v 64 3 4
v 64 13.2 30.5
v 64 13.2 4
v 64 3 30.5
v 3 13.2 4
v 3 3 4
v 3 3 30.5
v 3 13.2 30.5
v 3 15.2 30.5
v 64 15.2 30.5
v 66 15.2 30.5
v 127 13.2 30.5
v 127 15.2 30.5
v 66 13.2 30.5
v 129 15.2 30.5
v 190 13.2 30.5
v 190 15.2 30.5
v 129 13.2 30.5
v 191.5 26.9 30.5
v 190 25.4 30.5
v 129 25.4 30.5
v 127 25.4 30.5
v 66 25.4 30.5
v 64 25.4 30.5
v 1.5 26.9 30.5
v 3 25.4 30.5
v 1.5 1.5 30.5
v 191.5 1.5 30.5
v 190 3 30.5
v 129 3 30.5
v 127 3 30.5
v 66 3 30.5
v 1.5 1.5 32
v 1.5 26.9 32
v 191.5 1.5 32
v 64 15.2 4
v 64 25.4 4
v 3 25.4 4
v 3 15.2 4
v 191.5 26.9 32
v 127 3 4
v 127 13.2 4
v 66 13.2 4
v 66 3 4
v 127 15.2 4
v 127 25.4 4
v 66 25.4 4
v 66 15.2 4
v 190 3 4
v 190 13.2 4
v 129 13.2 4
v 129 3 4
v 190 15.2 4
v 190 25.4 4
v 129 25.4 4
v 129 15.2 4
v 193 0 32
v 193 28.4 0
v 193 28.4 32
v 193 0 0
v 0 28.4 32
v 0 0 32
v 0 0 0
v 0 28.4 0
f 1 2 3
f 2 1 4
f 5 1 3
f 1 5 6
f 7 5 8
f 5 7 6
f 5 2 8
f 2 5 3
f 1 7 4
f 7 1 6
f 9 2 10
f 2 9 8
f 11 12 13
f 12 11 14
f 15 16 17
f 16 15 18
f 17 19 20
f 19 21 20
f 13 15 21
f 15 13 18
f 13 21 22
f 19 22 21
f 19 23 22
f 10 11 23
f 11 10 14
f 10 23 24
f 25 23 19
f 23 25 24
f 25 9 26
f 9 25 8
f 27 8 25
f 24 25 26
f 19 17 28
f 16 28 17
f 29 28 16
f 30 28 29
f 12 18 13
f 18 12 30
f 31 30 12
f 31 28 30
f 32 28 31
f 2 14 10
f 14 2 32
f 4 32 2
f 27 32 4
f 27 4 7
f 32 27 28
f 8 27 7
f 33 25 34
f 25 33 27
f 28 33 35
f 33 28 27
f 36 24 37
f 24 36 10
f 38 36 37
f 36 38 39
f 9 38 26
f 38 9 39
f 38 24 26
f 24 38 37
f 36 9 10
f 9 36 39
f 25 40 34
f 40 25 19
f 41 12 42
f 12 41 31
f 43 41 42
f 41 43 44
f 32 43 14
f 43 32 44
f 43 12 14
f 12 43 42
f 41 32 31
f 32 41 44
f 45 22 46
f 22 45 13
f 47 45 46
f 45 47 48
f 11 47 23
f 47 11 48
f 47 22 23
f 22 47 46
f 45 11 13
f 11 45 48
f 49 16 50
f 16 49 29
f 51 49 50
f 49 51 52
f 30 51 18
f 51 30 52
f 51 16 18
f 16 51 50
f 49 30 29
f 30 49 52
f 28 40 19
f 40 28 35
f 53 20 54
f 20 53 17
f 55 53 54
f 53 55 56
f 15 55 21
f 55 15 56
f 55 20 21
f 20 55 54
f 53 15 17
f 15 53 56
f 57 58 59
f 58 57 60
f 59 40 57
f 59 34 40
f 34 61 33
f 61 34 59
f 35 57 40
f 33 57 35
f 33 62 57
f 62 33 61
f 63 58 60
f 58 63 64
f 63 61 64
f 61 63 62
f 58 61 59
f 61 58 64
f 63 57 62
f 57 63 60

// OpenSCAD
// ============================================================================
//  FolderMini Micro SD Card Holder  –  6 slots, 3 columns × 2 rows
//
//  Holds 6 FolderMini Mac-folder-styled micro SD card holders.
//  Card dimensions (measured from STL): 60 × 9.2 × 47 mm.
//  Cards slide in from the top; the bottom 28 mm is cradled inside the
//  pocket while the top ~19 mm stays exposed so the folder art is visible
//  and the card is easy to pull out.
//
//  Print flat on the base (no supports needed).
// ============================================================================

/* [Card dimensions] */
card_w = 60;    // card width  (X)
card_d = 9.2;   // card depth  (Y, thickness)
card_h = 47;    // card height (Z)

/* [Layout] */
cols = 3;       // columns (left → right)
rows = 2;       // rows    (front → back)

/* [Holder] */
clr      = 0.5;  // clearance per side
wall     = 3.0;  // outer wall thickness
div_x    = 2.0;  // divider width between columns
div_y    = 2.0;  // divider width between rows
floor_t  = 4.0;  // base plate thickness
pocket_h = 28.0; // how far each card is inserted (card protrudes ~19 mm above)
chamfer  = 1.5;  // lead-in chamfer at the top of each pocket

$fn = 48;

// derived slot inner dimensions
sw = card_w + 2*clr;
sd = card_d + 2*clr;

// outer block dimensions
ow = wall + cols*sw + (cols-1)*div_x + wall;
od = wall + rows*sd + (rows-1)*div_y + wall;
oh = floor_t + pocket_h;

module holder() {
    difference() {
        // solid base block
        cube([ow, od, oh]);

        // card pockets + top chamfer
        for (c = [0:cols-1], r = [0:rows-1]) {
            x0 = wall + c*(sw + div_x);
            y0 = wall + r*(sd + div_y);

            // main pocket (breaks through the top face)
            translate([x0, y0, floor_t])
                cube([sw, sd, pocket_h + 1]);

            // 45° lead-in chamfer around the pocket opening
            translate([x0 - chamfer, y0 - chamfer, oh - chamfer])
                cube([sw + 2*chamfer, sd + 2*chamfer, chamfer + 1]);
            // inner chamfer (hull between top face rect and pocket rect)
            translate([x0, y0, oh - chamfer]) {
                hull() {
                    cube([sw, sd, 0.01]);
                    translate([-chamfer, -chamfer, chamfer])
                        cube([sw + 2*chamfer, sd + 2*chamfer, 0.01]);
                }
            }
        }
    }
}

holder();
